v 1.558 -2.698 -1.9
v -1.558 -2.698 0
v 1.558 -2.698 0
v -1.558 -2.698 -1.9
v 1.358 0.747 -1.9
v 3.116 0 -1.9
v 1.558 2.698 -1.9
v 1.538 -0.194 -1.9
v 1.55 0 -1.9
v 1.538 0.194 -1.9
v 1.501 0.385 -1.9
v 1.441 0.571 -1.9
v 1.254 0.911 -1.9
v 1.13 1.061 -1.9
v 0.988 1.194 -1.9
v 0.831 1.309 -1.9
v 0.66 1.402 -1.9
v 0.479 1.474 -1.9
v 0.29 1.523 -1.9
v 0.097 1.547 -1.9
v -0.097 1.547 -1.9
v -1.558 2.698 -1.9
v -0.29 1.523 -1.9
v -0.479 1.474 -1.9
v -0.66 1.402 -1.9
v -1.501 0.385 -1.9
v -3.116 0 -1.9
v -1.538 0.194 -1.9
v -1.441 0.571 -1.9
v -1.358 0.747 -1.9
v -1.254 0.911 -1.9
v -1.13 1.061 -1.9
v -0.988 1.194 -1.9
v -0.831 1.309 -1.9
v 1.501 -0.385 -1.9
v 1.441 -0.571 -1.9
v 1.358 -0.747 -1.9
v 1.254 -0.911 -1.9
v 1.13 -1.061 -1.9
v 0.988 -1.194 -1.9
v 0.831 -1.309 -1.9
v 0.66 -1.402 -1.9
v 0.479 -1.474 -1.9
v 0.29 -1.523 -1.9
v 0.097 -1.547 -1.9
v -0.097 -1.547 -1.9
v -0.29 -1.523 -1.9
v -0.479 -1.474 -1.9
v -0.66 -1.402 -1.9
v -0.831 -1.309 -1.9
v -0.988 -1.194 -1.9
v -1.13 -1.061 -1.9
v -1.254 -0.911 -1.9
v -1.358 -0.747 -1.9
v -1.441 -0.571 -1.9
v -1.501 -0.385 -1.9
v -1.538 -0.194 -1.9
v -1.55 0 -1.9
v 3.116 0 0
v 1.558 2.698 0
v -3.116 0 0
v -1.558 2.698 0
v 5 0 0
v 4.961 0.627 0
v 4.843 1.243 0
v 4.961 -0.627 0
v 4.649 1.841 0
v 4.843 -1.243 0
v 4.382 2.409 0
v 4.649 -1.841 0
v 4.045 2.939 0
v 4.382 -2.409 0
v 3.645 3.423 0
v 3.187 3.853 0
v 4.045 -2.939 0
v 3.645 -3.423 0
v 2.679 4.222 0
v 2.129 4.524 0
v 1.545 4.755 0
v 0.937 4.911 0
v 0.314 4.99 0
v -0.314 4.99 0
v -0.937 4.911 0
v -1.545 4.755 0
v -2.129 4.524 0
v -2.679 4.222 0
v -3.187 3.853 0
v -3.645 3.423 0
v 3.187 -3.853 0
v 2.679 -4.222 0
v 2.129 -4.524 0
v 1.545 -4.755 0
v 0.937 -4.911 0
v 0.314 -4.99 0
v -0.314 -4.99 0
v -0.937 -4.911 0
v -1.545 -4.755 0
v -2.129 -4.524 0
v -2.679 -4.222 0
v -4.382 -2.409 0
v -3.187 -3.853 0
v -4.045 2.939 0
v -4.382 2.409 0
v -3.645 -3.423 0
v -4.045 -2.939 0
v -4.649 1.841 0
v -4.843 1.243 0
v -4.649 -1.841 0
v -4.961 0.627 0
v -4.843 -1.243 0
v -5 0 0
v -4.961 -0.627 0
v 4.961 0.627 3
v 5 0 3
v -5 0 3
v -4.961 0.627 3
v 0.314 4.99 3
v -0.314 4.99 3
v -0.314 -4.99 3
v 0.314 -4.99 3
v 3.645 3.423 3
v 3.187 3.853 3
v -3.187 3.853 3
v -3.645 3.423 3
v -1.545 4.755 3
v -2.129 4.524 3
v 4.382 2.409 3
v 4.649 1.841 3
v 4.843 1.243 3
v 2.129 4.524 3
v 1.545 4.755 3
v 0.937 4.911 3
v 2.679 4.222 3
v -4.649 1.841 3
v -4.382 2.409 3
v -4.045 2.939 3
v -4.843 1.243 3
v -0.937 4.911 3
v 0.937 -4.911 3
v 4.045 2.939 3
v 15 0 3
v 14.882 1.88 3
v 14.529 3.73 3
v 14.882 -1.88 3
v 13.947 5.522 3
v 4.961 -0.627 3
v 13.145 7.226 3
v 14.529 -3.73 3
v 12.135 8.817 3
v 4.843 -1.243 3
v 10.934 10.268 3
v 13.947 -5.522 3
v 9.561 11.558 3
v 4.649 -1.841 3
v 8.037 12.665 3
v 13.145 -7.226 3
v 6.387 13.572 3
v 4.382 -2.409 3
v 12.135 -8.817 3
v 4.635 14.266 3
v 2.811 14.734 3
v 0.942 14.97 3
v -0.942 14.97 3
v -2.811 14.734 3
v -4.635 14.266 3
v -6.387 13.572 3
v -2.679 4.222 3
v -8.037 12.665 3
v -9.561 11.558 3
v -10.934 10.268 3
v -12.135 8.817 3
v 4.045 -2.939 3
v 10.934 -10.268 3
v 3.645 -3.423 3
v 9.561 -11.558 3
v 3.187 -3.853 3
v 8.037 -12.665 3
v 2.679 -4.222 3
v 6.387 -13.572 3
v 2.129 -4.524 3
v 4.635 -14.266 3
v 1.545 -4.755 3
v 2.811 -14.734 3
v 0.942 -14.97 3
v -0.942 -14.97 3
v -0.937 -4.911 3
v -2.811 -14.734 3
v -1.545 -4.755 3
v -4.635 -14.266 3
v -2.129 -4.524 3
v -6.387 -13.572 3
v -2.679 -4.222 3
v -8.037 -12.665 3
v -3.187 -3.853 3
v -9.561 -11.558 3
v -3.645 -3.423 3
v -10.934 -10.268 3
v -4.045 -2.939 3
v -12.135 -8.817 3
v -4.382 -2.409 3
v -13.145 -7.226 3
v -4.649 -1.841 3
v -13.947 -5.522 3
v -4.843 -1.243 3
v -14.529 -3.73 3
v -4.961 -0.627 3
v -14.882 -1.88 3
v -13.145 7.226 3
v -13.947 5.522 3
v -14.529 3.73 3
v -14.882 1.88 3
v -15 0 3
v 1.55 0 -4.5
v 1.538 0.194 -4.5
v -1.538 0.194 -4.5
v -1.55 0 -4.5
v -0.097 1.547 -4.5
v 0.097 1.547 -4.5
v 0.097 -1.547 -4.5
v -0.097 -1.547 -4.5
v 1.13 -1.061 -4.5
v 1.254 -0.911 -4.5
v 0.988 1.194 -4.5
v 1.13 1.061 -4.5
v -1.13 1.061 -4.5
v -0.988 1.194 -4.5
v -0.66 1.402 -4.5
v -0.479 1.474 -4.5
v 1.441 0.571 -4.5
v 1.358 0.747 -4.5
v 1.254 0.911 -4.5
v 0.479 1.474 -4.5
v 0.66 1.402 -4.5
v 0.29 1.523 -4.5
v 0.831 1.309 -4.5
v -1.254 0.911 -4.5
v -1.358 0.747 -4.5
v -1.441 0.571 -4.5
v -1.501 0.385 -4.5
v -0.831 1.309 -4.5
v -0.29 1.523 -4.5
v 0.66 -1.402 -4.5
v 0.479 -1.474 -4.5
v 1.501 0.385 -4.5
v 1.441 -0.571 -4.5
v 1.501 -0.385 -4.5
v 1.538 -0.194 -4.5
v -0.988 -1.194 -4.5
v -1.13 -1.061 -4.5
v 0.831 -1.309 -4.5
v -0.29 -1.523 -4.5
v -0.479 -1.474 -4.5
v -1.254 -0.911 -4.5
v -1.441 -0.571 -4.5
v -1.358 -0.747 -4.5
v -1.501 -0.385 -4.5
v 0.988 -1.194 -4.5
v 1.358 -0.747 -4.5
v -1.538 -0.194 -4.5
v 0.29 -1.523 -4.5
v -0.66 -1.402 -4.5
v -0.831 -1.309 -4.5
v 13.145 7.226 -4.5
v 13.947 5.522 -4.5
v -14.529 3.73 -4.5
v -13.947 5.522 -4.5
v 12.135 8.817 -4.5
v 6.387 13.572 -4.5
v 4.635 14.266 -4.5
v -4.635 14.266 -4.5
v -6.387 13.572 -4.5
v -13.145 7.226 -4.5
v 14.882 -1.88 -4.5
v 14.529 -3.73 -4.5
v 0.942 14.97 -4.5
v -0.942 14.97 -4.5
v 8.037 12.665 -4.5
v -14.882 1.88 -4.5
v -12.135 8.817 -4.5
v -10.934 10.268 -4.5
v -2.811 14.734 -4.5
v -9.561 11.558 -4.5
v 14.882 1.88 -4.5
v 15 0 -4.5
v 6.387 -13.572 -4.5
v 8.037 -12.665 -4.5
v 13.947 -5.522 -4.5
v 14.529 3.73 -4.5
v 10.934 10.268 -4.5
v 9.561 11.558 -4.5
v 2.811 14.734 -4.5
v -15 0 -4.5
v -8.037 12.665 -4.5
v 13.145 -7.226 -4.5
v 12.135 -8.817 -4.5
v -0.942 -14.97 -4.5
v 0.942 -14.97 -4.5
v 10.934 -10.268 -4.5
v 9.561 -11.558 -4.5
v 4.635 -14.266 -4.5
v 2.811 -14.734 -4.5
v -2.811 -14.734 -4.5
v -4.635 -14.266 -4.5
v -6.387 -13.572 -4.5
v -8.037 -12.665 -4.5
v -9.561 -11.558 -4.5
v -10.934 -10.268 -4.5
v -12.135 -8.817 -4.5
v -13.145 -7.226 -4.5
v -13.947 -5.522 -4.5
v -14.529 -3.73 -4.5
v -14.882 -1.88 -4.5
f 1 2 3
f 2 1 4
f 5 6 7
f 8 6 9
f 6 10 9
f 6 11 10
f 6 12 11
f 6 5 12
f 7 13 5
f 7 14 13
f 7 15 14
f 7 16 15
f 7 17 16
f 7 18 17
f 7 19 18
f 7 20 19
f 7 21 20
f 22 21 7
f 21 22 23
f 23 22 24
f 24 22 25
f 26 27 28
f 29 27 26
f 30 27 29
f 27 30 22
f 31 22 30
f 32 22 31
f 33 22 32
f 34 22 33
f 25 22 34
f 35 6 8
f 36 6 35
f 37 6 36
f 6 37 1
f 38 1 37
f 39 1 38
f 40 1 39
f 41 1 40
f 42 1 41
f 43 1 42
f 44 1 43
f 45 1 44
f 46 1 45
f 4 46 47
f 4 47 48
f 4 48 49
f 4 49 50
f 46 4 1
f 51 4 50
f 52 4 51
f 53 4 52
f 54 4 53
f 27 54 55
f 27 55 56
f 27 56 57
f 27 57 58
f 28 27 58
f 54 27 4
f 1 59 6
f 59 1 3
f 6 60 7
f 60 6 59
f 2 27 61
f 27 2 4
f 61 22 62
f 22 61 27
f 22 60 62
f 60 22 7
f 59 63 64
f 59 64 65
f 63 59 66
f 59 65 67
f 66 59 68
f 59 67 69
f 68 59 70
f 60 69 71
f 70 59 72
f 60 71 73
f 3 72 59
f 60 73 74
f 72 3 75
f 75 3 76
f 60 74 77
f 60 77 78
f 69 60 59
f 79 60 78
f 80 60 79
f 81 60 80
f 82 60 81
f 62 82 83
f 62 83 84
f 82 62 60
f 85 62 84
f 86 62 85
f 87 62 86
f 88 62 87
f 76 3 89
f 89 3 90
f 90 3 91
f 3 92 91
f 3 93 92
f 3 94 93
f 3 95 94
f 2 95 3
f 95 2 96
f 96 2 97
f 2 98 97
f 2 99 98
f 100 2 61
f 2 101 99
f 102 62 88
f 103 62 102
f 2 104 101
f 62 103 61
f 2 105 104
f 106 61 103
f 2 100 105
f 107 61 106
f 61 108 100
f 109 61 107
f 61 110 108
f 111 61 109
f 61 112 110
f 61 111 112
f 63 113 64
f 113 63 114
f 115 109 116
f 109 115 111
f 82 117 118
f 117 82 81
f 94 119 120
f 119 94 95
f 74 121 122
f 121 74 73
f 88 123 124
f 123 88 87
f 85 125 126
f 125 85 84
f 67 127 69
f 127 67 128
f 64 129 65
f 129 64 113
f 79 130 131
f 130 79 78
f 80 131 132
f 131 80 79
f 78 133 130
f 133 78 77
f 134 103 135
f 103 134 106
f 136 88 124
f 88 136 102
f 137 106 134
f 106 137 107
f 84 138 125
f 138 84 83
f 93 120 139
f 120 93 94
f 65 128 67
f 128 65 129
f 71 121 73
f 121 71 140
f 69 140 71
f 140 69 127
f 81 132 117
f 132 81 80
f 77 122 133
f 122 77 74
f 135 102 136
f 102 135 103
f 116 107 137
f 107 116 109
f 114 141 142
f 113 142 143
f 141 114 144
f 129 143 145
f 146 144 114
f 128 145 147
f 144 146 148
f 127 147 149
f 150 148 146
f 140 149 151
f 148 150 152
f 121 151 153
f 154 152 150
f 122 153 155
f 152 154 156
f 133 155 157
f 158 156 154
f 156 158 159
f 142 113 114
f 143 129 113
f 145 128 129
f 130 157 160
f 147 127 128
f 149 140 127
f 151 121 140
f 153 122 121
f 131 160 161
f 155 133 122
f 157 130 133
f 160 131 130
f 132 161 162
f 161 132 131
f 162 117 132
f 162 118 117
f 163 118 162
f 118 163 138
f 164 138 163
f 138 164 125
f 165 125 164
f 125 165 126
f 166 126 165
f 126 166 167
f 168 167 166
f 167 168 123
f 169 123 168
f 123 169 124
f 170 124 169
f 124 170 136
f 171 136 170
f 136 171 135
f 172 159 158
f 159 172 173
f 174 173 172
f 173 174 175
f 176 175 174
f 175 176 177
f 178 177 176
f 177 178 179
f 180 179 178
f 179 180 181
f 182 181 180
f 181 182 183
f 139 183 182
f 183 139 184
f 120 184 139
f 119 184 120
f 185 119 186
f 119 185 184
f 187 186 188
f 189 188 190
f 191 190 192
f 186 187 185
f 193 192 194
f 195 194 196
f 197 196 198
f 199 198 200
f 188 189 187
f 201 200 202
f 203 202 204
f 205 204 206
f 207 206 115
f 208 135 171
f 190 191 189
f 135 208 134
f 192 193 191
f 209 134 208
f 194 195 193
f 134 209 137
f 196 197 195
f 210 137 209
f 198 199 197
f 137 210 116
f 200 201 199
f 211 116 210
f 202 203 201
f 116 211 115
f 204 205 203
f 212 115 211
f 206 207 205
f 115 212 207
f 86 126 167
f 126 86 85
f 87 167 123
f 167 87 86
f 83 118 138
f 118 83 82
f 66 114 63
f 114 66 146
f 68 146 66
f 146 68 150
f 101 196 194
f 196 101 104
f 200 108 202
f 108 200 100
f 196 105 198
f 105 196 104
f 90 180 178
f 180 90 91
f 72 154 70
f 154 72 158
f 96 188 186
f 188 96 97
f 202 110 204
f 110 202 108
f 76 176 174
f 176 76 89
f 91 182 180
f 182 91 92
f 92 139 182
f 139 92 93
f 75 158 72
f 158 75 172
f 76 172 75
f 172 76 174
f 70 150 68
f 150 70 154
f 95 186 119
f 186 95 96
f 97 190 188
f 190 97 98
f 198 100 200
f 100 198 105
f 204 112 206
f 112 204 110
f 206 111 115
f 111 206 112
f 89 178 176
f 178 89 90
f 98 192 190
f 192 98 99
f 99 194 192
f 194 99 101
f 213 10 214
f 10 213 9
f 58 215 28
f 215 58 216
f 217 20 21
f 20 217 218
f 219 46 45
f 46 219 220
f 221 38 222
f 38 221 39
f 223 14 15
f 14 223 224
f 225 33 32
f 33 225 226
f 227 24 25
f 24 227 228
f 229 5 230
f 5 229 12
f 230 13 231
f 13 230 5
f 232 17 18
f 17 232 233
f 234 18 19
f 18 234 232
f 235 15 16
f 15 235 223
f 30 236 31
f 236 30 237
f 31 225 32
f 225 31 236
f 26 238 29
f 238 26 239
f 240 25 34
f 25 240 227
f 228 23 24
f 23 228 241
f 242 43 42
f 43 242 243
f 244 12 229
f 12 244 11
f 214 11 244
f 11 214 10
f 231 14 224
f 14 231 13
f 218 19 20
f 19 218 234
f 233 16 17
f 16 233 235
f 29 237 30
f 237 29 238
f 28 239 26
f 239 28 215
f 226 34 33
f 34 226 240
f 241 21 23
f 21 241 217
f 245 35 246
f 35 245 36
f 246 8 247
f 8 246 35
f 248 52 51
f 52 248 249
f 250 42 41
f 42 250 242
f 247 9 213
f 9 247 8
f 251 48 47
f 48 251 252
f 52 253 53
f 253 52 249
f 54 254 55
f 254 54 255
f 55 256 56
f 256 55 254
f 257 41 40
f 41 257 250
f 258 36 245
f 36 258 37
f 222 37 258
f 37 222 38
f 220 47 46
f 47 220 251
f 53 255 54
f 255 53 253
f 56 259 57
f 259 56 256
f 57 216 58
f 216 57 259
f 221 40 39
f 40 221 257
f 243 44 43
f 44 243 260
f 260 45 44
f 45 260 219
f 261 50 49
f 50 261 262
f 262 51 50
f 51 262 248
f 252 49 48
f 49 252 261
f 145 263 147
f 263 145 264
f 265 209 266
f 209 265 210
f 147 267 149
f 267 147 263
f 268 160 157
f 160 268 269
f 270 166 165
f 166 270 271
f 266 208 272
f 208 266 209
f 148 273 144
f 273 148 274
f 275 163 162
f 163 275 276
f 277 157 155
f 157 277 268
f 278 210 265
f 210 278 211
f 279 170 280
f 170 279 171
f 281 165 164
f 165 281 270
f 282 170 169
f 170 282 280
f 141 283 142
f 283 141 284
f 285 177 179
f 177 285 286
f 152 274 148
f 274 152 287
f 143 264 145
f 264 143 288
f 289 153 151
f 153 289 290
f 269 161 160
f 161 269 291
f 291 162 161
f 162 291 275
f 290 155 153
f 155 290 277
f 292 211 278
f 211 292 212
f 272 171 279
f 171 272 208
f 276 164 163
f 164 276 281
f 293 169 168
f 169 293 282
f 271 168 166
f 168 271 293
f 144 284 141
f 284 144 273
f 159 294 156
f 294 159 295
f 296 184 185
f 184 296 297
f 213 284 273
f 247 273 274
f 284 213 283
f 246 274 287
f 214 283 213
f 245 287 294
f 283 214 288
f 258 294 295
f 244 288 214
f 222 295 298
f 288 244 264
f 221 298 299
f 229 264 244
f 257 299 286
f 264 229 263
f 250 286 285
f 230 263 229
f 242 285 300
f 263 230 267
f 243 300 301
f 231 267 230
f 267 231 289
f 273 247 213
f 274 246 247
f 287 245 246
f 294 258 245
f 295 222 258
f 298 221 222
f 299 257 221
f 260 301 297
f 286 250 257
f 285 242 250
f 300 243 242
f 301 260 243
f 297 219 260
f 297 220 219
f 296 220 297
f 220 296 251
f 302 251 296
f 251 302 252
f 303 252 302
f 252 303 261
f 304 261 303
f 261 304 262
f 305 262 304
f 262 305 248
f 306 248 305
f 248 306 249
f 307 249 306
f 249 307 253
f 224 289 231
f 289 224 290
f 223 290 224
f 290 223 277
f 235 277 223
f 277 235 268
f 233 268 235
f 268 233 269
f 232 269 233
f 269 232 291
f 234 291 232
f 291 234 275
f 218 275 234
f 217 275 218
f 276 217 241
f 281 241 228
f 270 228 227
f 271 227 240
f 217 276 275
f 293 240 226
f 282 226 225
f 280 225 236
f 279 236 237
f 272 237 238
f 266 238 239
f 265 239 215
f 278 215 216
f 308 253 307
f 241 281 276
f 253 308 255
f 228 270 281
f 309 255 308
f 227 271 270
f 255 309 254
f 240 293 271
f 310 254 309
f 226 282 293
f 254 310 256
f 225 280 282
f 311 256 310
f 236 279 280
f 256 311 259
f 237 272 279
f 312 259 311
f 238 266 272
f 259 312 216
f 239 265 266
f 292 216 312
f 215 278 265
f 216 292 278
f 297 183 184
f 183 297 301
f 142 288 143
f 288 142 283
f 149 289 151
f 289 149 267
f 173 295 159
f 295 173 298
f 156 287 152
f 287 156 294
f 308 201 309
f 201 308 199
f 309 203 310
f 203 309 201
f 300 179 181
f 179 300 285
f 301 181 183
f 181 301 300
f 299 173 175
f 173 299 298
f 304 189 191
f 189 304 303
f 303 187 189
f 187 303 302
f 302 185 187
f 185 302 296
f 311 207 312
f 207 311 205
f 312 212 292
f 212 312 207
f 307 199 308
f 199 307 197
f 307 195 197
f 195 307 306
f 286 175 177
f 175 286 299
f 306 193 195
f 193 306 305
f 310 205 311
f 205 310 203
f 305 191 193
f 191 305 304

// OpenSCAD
$fn = 50;

difference() {
	union() {
		translate(v = [0, 0, -4.5]) {
			cylinder(h = 7.5, r = 15.0);
		}
	}
	union() {
		translate(v = [0, 0, 0]) {
			rotate(a = [0, 0, 0]) {
				difference() {
					union() {
						translate(v = [0, 0, -1.9]) {
							linear_extrude(height = 1.9) {
								polygon(points = [[3.1158, 0.0], [1.5579000000000005, 2.698361953111554], [-1.5578999999999994, 2.6983619531115544], [-3.1158, 3.815754496783323e-16], [-1.5579000000000014, -2.6983619531115535], [1.557899999999998, -2.6983619531115552]]);
							}
						}
					}
					union();
				}
			}
		}
		#cylinder(h = 3, r = 5.0);
		#translate(v = [0, 0, -100.0]) {
			cylinder(h = 200, r = 1.55);
		}
	}
}
